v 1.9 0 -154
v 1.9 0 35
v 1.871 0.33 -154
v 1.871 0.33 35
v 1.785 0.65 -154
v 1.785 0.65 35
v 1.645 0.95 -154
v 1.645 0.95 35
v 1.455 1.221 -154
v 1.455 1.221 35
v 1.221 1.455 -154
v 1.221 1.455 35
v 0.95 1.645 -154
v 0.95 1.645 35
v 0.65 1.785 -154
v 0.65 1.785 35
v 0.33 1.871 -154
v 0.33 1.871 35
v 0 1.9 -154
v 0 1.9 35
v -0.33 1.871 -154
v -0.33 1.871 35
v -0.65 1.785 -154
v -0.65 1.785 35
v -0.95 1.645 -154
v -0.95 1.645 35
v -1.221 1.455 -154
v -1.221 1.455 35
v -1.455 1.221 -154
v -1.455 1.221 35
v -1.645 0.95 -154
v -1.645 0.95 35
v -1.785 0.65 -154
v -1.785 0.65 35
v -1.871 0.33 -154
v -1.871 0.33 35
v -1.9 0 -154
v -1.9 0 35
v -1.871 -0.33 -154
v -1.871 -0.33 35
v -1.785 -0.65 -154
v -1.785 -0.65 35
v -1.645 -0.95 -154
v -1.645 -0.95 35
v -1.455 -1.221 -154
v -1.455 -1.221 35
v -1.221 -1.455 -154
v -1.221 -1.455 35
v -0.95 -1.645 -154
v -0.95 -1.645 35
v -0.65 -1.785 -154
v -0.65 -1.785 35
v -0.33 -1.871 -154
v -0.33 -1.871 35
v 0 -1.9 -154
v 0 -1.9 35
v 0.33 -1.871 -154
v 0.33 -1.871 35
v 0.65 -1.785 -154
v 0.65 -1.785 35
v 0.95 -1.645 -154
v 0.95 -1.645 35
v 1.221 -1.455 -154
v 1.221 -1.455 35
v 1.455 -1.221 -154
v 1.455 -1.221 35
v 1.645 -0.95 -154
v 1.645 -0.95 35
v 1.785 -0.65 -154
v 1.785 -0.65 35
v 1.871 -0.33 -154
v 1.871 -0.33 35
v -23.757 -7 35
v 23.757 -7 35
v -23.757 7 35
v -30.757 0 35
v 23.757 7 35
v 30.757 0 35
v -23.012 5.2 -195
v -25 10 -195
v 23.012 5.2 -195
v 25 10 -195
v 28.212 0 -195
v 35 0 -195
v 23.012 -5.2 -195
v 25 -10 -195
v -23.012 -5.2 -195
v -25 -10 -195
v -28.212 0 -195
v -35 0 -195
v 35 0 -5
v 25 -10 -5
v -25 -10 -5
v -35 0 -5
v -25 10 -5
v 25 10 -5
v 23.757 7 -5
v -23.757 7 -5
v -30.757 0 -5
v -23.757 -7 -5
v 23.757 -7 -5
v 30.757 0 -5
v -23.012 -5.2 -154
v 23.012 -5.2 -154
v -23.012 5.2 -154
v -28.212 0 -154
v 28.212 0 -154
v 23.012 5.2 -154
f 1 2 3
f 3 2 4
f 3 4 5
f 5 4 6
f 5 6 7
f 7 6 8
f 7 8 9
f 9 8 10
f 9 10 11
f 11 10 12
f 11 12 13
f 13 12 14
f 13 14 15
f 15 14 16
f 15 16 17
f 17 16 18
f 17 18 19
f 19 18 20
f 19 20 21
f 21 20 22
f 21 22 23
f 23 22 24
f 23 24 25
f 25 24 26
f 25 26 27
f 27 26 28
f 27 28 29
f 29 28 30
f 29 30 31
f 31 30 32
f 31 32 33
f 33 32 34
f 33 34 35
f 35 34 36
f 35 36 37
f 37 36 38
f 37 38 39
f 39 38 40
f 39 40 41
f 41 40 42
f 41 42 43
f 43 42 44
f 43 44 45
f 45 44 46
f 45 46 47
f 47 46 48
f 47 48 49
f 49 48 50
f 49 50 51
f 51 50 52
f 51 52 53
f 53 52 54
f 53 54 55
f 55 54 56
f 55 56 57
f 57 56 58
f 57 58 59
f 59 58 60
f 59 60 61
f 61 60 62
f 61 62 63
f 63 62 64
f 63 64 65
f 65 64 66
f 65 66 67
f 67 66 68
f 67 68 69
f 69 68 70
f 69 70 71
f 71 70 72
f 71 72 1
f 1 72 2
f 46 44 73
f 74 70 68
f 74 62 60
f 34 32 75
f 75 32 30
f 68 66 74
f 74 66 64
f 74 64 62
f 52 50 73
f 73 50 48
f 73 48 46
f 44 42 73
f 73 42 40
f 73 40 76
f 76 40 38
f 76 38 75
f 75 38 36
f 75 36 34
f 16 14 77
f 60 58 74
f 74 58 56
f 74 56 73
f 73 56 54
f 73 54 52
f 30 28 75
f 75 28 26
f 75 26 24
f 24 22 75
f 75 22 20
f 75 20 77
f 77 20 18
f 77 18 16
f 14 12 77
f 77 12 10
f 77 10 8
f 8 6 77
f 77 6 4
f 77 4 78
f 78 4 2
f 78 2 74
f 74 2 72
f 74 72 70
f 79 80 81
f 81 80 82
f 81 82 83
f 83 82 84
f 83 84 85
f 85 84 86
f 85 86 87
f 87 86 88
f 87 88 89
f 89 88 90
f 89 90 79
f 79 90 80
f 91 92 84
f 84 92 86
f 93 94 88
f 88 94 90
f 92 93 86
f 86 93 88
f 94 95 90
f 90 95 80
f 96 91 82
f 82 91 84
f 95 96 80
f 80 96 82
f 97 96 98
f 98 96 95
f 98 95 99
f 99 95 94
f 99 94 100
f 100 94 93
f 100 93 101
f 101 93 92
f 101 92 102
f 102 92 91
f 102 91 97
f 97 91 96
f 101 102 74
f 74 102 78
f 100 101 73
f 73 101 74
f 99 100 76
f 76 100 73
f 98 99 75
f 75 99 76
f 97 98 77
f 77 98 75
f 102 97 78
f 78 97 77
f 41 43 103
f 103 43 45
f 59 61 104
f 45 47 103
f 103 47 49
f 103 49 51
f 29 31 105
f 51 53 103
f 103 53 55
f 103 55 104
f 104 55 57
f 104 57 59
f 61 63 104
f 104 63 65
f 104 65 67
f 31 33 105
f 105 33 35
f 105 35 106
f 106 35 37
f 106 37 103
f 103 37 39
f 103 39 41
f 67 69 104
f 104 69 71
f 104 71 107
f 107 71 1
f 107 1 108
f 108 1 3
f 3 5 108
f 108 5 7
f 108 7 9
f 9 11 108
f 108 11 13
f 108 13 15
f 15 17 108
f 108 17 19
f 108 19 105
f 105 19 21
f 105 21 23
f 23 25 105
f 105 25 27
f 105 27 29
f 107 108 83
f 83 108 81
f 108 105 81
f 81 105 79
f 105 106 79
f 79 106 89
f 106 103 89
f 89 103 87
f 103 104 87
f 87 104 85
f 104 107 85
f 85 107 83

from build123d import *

# Parameters (mm, degrees)
EXTRUDE_1_DEPTH           = 18
CHAMFER_1_SIZE            = 5
CHAMFER_2_SIZE            = 5
CUT_EXTRUDE_1_DEPTH       = 8
EXTRUDE_2_REACH           = 696.741
EXTRUDE_2_END_RADIUS      = 240
EXTRUDE_3_DEPTH           = 5
EXTRUDE_4_REACH           = 929.644
EXTRUDE_4_END_RADIUS      = 232
SKETCH_10_R               = 12
CUT_EXTRUDE_7_DEPTH       = 695.872110635
CUT_EXTRUDE_7_DEPTH_BACK  = 695.872110635
SKETCH_16_OUTSIDE_W       = 362.68
SKETCH_16_OUTSIDE_H       = 1204.68
SKETCH_16_OUTSIDE_W_2     = 100
SKETCH_16_OUTSIDE_H_2     = 230
CUT_EXTRUDE_9_DEPTH       = 203.111355445
CUT_EXTRUDE_9_DEPTH_BACK  = 203.111355445
EXTRUDE_5_DEPTH           = 20
CUT_EXTRUDE_10_DEPTH      = 219.63208799
CUT_EXTRUDE_10_DEPTH_BACK = 219.63208799
SKETCH_21_R               = 1.9
EXTRUDE_START             = 15
SKETCH_29_R               = 1.9
EXTRUDE_6_DEPTH           = 15
SKETCH_33_OUTSIDE_W       = 126.318
SKETCH_33_OUTSIDE_H       = 74.662
CUT_EXTRUDE_16_DEPTH      = 40
CUT_EXTRUDE_15_DEPTH      = 41


with BuildPart() as part:
    # 草图4 → 放样1 section 0
    with BuildSketch(Plane(origin=(0, 10, 0), x_dir=(1, 0, 0), z_dir=(0, 1, 0))):
        with BuildLine():
            Line((25, 0), (-25, 0))
            Line((-25, 0), (-25, 630))
            Line((-25, 630), (0, 672.857142857))
            Line((0, 672.857142857), (25, 630))
            Line((25, 630), (25, 0))
        make_face()
    # 草图1 → 放样1 section 1
    with BuildSketch(Plane(origin=(0, 0, 0), x_dir=(1, 0, 0), z_dir=(0, 1, 0))):
        with BuildLine():
            Line((-35, 0), (35, 0))
            Line((35, 0), (35, 630))
            Line((35, 630), (0, 690))
            Line((0, 690), (-35, 630))
            Line((-35, 630), (-35, 0))
        make_face()
    loft_1 = loft()

    # 镜向1: 放样1 across plane
    add(loft_1.mirror(Plane.ZX))



with BuildPart() as body_2:
    # 草图5 → 凸台-拉伸1 (new, symmetric)
    with BuildSketch(Plane(origin=(0, 0, 0), x_dir=(1, 0, 0), z_dir=(0, 1, 0))):
        with BuildLine():
            ThreePointArc((-66.346774613, -65.189169183), (0, -55.5), (66.346774613, -65.189169183))
            ThreePointArc((66.346774613, -65.189169183), (73.061224406, -64.270510235), (76.791165228, -58.612302768))
            ThreePointArc((76.791165228, -58.612302768), (79, -30.5), (76.791165228, -2.387697232))
            ThreePointArc((76.791165228, -2.387697232), (0, -15.004503167), (-76.791165228, -2.387697232))
            ThreePointArc((-76.791165228, -2.387697232), (-79, -30.5), (-76.791165228, -58.612302768))
            ThreePointArc((-76.791165228, -58.612302768), (-73.061224406, -64.270510235), (-66.346774613, -65.189169183))
        make_face()
    extrude(amount=EXTRUDE_1_DEPTH, both=True)

    # 倒角1
    chamfer_1_edges = [body_2.edges().sort_by_distance(p)[0] for p in [
        (0, 18, 15.004503167),
        (-79, 18, 30.5),
        (-73.061224406, 18, 64.270510235),
        (0, 18, 55.5),
        (73.061224406, 18, 64.270510235),
        (0, -18, 55.5),
        (-73.061224406, -18, 64.270510235),
        (-79, -18, 30.5),
        (79, -18, 30.5),
        (73.061224406, -18, 64.270510235),
        (79, 18, 30.5),
    ]]
    chamfer(chamfer_1_edges, length=CHAMFER_1_SIZE)

    # 倒角2
    chamfer_2_edges = [body_2.edges().sort_by_distance(p)[0] for p in [
        (0, -18, 15.004503167),
    ]]
    chamfer(chamfer_2_edges, length=CHAMFER_2_SIZE)

    # 草图6 → 切除-拉伸1 (cut)
    with BuildSketch(Plane(origin=(0, 18, 0), x_dir=(1, 0, 0), z_dir=(0, 1, 0))):
        with BuildLine():
            ThreePointArc((67.221840199, -55.023712607), (68.932610365, -35.286223394), (68.335500378, -15.483731767))
            ThreePointArc((68.335500378, -15.483731767), (0, -25.004503167), (-68.335500378, -15.483731767))
            ThreePointArc((-68.335500378, -15.483731767), (-68.932610365, -35.286223394), (-67.221840199, -55.023712607))
            ThreePointArc((-67.221840199, -55.023712607), (0, -45.5), (67.221840199, -55.023712607))
        make_face()
    cut_extrude_1 = extrude(amount=-CUT_EXTRUDE_1_DEPTH, mode=Mode.SUBTRACT)

    # 镜向2: 切除-拉伸1 across plane
    add(cut_extrude_1.mirror(Plane.ZX), mode=Mode.SUBTRACT)


with BuildPart() as part_1:
    add(part.part)

    add(body_2.part)  # 凸台-拉伸2 merges body 2
    # 凸台-拉伸2: up to this cylinder (the profile starts inside it)
    extrude_2_end = Plane(origin=(0, 0, -224.995496833), z_dir=(0, -1, 0)) * Cylinder(EXTRUDE_2_END_RADIUS, 1874.482, mode=Mode.PRIVATE)
    # 草图7 → 凸台-拉伸2 (add, up to the surface)
    with BuildSketch(Plane.XY, mode=Mode.PRIVATE) as extrude_2_sk1:
        Polygon((-25.828427125, 12), (-37.828427125, 0), (-25.828427125, -12), (25.828427125, -12), (37.828427125, 0), (25.828427125, 12), align=None)
    extrude_2_tool1 = extrude(extrude_2_sk1.sketch, amount=EXTRUDE_2_REACH, mode=Mode.PRIVATE) & extrude_2_end
    add(extrude_2_tool1.solids().sort_by_distance((0, 0, 0))[0])

    # 草图8 → 凸台-拉伸3 (add)
    with BuildSketch(Plane(origin=(0, 0, 0), x_dir=(-1, 0, 0), z_dir=(0, 0, -1))):
        Polygon((25.828427125, 12), (-25.828427125, 12), (-37.828427125, 0), (-25.828427125, -12), (25.828427125, -12), (37.828427125, 0), align=None)
    extrude(amount=EXTRUDE_3_DEPTH)



with BuildPart() as body_2_2:
    # 草图9 → 旋转1 (revolve)
    with BuildSketch(Plane(origin=(0, 0, 0), x_dir=(1, 0, 0), z_dir=(0, 1, 0))):
        Polygon((0, -310), (0, -234), (-12, -234), (-22.5, -256), align=None)
    revolve(axis=Axis((0, 0, -690), (0, 0, 1)))


with BuildPart() as part_2:
    add(part_1.part)

    add(body_2_2.part)  # 凸台-拉伸4 merges body 2 2
    # 凸台-拉伸4: up to this cylinder (the profile starts inside it)
    extrude_4_end = Plane(origin=(0, 0, 287.5), z_dir=(0, -1, 0)) * Cylinder(EXTRUDE_4_END_RADIUS, 2324.288, mode=Mode.PRIVATE)
    # 草图10 → 凸台-拉伸4 (add, up to the surface)
    with BuildSketch(Plane(origin=(0, 0, 234), x_dir=(-1, 0, 0), z_dir=(0, 0, -1)), mode=Mode.PRIVATE) as extrude_4_sk1:
        with Locations(Location((0, 0, 0), (0, 0, 90))):
            Circle(SKETCH_10_R)
    extrude_4_tool1 = extrude(extrude_4_sk1.sketch, amount=EXTRUDE_4_REACH, mode=Mode.PRIVATE) & extrude_4_end
    add(extrude_4_tool1.solids().sort_by_distance((0, 0, 234))[0])

    # 草图16 outside → 切除-拉伸7 (cut, two sides: drawn at the far end of the back side and taken through both)
    with BuildSketch(Plane(origin=(0, 0, 0), x_dir=(1, 0, 0), z_dir=(0, 1, 0)).offset(-CUT_EXTRUDE_7_DEPTH_BACK)):
        with Locations((0, 190)):
            Rectangle(SKETCH_16_OUTSIDE_W, SKETCH_16_OUTSIDE_H)
        with Locations((0, 80)):
            Rectangle(SKETCH_16_OUTSIDE_W_2, SKETCH_16_OUTSIDE_H_2, mode=Mode.SUBTRACT)
    extrude(amount=CUT_EXTRUDE_7_DEPTH + CUT_EXTRUDE_7_DEPTH_BACK, mode=Mode.SUBTRACT)

    # 草图19 → 切除-拉伸9 (cut, two sides: drawn at the far end of the back side and taken through both)
    with BuildSketch(Plane(origin=(0, 0, 0), x_dir=(1, 0, 0), z_dir=(0, 1, 0)).offset(-CUT_EXTRUDE_9_DEPTH_BACK)):
        with BuildLine():
            Line((-50, -9.738395054), (-50, -35))
            Line((-50, -35), (50, -35))
            Line((50, -35), (50, -9.738395054))
            ThreePointArc((50, -9.738395054), (0, -15.004503167), (-50, -9.738395054))
        make_face()
    extrude(amount=CUT_EXTRUDE_9_DEPTH + CUT_EXTRUDE_9_DEPTH_BACK, mode=Mode.SUBTRACT)

    # 草图20 → 凸台-拉伸5 (add)
    with BuildSketch(Plane.XY):
        Polygon((-25.828427125, 12), (-37.828427125, 0), (-25.828427125, -12), (25.828427125, -12), (37.828427125, 0), (25.828427125, 12), align=None)
    extrude(amount=EXTRUDE_5_DEPTH)

    # 草图21 → 切除-拉伸10 (cut, two sides: drawn at the far end of the back side and taken through both)
    with BuildSketch(Plane.XY.offset(20).offset(-CUT_EXTRUDE_10_DEPTH_BACK)):
        Circle(SKETCH_21_R)
    extrude(amount=CUT_EXTRUDE_10_DEPTH + CUT_EXTRUDE_10_DEPTH_BACK, mode=Mode.SUBTRACT)

    # 草图29 → 凸台-拉伸6 (add)
    with BuildSketch(Plane.XY.offset(20).offset(EXTRUDE_START)):
        Polygon((25.828427125, 12), (-25.828427125, 12), (-37.828427125, 0), (-25.828427125, -12), (25.828427125, -12), (37.828427125, 0), align=None)
        Circle(SKETCH_29_R, mode=Mode.SUBTRACT)
    extrude(amount=-EXTRUDE_6_DEPTH)

    # 草图33 outside → 切除-拉伸16 (cut)
    with BuildSketch(Plane.XY.offset(35)):
        Rectangle(SKETCH_33_OUTSIDE_W, SKETCH_33_OUTSIDE_H)
        Polygon((30.757359313, 0), (23.757359313, 7), (-23.757359313, 7), (-30.757359313, 0), (-23.757359313, -7), (23.757359313, -7), align=None, mode=Mode.SUBTRACT)
    extrude(amount=-CUT_EXTRUDE_16_DEPTH, mode=Mode.SUBTRACT)

    # 草图31 → 切除-拉伸15 (cut)
    with BuildSketch(Plane(origin=(0, 0, -195), x_dir=(-1, 0, 0), z_dir=(0, 0, -1))):
        Polygon((-28.211774901, 0), (-23.011774901, -5.2), (23.011774901, -5.2), (28.211774901, 0), (23.011774901, 5.2), (-23.011774901, 5.2), align=None)
    extrude(amount=-CUT_EXTRUDE_15_DEPTH, mode=Mode.SUBTRACT)


solid = part_2.part
